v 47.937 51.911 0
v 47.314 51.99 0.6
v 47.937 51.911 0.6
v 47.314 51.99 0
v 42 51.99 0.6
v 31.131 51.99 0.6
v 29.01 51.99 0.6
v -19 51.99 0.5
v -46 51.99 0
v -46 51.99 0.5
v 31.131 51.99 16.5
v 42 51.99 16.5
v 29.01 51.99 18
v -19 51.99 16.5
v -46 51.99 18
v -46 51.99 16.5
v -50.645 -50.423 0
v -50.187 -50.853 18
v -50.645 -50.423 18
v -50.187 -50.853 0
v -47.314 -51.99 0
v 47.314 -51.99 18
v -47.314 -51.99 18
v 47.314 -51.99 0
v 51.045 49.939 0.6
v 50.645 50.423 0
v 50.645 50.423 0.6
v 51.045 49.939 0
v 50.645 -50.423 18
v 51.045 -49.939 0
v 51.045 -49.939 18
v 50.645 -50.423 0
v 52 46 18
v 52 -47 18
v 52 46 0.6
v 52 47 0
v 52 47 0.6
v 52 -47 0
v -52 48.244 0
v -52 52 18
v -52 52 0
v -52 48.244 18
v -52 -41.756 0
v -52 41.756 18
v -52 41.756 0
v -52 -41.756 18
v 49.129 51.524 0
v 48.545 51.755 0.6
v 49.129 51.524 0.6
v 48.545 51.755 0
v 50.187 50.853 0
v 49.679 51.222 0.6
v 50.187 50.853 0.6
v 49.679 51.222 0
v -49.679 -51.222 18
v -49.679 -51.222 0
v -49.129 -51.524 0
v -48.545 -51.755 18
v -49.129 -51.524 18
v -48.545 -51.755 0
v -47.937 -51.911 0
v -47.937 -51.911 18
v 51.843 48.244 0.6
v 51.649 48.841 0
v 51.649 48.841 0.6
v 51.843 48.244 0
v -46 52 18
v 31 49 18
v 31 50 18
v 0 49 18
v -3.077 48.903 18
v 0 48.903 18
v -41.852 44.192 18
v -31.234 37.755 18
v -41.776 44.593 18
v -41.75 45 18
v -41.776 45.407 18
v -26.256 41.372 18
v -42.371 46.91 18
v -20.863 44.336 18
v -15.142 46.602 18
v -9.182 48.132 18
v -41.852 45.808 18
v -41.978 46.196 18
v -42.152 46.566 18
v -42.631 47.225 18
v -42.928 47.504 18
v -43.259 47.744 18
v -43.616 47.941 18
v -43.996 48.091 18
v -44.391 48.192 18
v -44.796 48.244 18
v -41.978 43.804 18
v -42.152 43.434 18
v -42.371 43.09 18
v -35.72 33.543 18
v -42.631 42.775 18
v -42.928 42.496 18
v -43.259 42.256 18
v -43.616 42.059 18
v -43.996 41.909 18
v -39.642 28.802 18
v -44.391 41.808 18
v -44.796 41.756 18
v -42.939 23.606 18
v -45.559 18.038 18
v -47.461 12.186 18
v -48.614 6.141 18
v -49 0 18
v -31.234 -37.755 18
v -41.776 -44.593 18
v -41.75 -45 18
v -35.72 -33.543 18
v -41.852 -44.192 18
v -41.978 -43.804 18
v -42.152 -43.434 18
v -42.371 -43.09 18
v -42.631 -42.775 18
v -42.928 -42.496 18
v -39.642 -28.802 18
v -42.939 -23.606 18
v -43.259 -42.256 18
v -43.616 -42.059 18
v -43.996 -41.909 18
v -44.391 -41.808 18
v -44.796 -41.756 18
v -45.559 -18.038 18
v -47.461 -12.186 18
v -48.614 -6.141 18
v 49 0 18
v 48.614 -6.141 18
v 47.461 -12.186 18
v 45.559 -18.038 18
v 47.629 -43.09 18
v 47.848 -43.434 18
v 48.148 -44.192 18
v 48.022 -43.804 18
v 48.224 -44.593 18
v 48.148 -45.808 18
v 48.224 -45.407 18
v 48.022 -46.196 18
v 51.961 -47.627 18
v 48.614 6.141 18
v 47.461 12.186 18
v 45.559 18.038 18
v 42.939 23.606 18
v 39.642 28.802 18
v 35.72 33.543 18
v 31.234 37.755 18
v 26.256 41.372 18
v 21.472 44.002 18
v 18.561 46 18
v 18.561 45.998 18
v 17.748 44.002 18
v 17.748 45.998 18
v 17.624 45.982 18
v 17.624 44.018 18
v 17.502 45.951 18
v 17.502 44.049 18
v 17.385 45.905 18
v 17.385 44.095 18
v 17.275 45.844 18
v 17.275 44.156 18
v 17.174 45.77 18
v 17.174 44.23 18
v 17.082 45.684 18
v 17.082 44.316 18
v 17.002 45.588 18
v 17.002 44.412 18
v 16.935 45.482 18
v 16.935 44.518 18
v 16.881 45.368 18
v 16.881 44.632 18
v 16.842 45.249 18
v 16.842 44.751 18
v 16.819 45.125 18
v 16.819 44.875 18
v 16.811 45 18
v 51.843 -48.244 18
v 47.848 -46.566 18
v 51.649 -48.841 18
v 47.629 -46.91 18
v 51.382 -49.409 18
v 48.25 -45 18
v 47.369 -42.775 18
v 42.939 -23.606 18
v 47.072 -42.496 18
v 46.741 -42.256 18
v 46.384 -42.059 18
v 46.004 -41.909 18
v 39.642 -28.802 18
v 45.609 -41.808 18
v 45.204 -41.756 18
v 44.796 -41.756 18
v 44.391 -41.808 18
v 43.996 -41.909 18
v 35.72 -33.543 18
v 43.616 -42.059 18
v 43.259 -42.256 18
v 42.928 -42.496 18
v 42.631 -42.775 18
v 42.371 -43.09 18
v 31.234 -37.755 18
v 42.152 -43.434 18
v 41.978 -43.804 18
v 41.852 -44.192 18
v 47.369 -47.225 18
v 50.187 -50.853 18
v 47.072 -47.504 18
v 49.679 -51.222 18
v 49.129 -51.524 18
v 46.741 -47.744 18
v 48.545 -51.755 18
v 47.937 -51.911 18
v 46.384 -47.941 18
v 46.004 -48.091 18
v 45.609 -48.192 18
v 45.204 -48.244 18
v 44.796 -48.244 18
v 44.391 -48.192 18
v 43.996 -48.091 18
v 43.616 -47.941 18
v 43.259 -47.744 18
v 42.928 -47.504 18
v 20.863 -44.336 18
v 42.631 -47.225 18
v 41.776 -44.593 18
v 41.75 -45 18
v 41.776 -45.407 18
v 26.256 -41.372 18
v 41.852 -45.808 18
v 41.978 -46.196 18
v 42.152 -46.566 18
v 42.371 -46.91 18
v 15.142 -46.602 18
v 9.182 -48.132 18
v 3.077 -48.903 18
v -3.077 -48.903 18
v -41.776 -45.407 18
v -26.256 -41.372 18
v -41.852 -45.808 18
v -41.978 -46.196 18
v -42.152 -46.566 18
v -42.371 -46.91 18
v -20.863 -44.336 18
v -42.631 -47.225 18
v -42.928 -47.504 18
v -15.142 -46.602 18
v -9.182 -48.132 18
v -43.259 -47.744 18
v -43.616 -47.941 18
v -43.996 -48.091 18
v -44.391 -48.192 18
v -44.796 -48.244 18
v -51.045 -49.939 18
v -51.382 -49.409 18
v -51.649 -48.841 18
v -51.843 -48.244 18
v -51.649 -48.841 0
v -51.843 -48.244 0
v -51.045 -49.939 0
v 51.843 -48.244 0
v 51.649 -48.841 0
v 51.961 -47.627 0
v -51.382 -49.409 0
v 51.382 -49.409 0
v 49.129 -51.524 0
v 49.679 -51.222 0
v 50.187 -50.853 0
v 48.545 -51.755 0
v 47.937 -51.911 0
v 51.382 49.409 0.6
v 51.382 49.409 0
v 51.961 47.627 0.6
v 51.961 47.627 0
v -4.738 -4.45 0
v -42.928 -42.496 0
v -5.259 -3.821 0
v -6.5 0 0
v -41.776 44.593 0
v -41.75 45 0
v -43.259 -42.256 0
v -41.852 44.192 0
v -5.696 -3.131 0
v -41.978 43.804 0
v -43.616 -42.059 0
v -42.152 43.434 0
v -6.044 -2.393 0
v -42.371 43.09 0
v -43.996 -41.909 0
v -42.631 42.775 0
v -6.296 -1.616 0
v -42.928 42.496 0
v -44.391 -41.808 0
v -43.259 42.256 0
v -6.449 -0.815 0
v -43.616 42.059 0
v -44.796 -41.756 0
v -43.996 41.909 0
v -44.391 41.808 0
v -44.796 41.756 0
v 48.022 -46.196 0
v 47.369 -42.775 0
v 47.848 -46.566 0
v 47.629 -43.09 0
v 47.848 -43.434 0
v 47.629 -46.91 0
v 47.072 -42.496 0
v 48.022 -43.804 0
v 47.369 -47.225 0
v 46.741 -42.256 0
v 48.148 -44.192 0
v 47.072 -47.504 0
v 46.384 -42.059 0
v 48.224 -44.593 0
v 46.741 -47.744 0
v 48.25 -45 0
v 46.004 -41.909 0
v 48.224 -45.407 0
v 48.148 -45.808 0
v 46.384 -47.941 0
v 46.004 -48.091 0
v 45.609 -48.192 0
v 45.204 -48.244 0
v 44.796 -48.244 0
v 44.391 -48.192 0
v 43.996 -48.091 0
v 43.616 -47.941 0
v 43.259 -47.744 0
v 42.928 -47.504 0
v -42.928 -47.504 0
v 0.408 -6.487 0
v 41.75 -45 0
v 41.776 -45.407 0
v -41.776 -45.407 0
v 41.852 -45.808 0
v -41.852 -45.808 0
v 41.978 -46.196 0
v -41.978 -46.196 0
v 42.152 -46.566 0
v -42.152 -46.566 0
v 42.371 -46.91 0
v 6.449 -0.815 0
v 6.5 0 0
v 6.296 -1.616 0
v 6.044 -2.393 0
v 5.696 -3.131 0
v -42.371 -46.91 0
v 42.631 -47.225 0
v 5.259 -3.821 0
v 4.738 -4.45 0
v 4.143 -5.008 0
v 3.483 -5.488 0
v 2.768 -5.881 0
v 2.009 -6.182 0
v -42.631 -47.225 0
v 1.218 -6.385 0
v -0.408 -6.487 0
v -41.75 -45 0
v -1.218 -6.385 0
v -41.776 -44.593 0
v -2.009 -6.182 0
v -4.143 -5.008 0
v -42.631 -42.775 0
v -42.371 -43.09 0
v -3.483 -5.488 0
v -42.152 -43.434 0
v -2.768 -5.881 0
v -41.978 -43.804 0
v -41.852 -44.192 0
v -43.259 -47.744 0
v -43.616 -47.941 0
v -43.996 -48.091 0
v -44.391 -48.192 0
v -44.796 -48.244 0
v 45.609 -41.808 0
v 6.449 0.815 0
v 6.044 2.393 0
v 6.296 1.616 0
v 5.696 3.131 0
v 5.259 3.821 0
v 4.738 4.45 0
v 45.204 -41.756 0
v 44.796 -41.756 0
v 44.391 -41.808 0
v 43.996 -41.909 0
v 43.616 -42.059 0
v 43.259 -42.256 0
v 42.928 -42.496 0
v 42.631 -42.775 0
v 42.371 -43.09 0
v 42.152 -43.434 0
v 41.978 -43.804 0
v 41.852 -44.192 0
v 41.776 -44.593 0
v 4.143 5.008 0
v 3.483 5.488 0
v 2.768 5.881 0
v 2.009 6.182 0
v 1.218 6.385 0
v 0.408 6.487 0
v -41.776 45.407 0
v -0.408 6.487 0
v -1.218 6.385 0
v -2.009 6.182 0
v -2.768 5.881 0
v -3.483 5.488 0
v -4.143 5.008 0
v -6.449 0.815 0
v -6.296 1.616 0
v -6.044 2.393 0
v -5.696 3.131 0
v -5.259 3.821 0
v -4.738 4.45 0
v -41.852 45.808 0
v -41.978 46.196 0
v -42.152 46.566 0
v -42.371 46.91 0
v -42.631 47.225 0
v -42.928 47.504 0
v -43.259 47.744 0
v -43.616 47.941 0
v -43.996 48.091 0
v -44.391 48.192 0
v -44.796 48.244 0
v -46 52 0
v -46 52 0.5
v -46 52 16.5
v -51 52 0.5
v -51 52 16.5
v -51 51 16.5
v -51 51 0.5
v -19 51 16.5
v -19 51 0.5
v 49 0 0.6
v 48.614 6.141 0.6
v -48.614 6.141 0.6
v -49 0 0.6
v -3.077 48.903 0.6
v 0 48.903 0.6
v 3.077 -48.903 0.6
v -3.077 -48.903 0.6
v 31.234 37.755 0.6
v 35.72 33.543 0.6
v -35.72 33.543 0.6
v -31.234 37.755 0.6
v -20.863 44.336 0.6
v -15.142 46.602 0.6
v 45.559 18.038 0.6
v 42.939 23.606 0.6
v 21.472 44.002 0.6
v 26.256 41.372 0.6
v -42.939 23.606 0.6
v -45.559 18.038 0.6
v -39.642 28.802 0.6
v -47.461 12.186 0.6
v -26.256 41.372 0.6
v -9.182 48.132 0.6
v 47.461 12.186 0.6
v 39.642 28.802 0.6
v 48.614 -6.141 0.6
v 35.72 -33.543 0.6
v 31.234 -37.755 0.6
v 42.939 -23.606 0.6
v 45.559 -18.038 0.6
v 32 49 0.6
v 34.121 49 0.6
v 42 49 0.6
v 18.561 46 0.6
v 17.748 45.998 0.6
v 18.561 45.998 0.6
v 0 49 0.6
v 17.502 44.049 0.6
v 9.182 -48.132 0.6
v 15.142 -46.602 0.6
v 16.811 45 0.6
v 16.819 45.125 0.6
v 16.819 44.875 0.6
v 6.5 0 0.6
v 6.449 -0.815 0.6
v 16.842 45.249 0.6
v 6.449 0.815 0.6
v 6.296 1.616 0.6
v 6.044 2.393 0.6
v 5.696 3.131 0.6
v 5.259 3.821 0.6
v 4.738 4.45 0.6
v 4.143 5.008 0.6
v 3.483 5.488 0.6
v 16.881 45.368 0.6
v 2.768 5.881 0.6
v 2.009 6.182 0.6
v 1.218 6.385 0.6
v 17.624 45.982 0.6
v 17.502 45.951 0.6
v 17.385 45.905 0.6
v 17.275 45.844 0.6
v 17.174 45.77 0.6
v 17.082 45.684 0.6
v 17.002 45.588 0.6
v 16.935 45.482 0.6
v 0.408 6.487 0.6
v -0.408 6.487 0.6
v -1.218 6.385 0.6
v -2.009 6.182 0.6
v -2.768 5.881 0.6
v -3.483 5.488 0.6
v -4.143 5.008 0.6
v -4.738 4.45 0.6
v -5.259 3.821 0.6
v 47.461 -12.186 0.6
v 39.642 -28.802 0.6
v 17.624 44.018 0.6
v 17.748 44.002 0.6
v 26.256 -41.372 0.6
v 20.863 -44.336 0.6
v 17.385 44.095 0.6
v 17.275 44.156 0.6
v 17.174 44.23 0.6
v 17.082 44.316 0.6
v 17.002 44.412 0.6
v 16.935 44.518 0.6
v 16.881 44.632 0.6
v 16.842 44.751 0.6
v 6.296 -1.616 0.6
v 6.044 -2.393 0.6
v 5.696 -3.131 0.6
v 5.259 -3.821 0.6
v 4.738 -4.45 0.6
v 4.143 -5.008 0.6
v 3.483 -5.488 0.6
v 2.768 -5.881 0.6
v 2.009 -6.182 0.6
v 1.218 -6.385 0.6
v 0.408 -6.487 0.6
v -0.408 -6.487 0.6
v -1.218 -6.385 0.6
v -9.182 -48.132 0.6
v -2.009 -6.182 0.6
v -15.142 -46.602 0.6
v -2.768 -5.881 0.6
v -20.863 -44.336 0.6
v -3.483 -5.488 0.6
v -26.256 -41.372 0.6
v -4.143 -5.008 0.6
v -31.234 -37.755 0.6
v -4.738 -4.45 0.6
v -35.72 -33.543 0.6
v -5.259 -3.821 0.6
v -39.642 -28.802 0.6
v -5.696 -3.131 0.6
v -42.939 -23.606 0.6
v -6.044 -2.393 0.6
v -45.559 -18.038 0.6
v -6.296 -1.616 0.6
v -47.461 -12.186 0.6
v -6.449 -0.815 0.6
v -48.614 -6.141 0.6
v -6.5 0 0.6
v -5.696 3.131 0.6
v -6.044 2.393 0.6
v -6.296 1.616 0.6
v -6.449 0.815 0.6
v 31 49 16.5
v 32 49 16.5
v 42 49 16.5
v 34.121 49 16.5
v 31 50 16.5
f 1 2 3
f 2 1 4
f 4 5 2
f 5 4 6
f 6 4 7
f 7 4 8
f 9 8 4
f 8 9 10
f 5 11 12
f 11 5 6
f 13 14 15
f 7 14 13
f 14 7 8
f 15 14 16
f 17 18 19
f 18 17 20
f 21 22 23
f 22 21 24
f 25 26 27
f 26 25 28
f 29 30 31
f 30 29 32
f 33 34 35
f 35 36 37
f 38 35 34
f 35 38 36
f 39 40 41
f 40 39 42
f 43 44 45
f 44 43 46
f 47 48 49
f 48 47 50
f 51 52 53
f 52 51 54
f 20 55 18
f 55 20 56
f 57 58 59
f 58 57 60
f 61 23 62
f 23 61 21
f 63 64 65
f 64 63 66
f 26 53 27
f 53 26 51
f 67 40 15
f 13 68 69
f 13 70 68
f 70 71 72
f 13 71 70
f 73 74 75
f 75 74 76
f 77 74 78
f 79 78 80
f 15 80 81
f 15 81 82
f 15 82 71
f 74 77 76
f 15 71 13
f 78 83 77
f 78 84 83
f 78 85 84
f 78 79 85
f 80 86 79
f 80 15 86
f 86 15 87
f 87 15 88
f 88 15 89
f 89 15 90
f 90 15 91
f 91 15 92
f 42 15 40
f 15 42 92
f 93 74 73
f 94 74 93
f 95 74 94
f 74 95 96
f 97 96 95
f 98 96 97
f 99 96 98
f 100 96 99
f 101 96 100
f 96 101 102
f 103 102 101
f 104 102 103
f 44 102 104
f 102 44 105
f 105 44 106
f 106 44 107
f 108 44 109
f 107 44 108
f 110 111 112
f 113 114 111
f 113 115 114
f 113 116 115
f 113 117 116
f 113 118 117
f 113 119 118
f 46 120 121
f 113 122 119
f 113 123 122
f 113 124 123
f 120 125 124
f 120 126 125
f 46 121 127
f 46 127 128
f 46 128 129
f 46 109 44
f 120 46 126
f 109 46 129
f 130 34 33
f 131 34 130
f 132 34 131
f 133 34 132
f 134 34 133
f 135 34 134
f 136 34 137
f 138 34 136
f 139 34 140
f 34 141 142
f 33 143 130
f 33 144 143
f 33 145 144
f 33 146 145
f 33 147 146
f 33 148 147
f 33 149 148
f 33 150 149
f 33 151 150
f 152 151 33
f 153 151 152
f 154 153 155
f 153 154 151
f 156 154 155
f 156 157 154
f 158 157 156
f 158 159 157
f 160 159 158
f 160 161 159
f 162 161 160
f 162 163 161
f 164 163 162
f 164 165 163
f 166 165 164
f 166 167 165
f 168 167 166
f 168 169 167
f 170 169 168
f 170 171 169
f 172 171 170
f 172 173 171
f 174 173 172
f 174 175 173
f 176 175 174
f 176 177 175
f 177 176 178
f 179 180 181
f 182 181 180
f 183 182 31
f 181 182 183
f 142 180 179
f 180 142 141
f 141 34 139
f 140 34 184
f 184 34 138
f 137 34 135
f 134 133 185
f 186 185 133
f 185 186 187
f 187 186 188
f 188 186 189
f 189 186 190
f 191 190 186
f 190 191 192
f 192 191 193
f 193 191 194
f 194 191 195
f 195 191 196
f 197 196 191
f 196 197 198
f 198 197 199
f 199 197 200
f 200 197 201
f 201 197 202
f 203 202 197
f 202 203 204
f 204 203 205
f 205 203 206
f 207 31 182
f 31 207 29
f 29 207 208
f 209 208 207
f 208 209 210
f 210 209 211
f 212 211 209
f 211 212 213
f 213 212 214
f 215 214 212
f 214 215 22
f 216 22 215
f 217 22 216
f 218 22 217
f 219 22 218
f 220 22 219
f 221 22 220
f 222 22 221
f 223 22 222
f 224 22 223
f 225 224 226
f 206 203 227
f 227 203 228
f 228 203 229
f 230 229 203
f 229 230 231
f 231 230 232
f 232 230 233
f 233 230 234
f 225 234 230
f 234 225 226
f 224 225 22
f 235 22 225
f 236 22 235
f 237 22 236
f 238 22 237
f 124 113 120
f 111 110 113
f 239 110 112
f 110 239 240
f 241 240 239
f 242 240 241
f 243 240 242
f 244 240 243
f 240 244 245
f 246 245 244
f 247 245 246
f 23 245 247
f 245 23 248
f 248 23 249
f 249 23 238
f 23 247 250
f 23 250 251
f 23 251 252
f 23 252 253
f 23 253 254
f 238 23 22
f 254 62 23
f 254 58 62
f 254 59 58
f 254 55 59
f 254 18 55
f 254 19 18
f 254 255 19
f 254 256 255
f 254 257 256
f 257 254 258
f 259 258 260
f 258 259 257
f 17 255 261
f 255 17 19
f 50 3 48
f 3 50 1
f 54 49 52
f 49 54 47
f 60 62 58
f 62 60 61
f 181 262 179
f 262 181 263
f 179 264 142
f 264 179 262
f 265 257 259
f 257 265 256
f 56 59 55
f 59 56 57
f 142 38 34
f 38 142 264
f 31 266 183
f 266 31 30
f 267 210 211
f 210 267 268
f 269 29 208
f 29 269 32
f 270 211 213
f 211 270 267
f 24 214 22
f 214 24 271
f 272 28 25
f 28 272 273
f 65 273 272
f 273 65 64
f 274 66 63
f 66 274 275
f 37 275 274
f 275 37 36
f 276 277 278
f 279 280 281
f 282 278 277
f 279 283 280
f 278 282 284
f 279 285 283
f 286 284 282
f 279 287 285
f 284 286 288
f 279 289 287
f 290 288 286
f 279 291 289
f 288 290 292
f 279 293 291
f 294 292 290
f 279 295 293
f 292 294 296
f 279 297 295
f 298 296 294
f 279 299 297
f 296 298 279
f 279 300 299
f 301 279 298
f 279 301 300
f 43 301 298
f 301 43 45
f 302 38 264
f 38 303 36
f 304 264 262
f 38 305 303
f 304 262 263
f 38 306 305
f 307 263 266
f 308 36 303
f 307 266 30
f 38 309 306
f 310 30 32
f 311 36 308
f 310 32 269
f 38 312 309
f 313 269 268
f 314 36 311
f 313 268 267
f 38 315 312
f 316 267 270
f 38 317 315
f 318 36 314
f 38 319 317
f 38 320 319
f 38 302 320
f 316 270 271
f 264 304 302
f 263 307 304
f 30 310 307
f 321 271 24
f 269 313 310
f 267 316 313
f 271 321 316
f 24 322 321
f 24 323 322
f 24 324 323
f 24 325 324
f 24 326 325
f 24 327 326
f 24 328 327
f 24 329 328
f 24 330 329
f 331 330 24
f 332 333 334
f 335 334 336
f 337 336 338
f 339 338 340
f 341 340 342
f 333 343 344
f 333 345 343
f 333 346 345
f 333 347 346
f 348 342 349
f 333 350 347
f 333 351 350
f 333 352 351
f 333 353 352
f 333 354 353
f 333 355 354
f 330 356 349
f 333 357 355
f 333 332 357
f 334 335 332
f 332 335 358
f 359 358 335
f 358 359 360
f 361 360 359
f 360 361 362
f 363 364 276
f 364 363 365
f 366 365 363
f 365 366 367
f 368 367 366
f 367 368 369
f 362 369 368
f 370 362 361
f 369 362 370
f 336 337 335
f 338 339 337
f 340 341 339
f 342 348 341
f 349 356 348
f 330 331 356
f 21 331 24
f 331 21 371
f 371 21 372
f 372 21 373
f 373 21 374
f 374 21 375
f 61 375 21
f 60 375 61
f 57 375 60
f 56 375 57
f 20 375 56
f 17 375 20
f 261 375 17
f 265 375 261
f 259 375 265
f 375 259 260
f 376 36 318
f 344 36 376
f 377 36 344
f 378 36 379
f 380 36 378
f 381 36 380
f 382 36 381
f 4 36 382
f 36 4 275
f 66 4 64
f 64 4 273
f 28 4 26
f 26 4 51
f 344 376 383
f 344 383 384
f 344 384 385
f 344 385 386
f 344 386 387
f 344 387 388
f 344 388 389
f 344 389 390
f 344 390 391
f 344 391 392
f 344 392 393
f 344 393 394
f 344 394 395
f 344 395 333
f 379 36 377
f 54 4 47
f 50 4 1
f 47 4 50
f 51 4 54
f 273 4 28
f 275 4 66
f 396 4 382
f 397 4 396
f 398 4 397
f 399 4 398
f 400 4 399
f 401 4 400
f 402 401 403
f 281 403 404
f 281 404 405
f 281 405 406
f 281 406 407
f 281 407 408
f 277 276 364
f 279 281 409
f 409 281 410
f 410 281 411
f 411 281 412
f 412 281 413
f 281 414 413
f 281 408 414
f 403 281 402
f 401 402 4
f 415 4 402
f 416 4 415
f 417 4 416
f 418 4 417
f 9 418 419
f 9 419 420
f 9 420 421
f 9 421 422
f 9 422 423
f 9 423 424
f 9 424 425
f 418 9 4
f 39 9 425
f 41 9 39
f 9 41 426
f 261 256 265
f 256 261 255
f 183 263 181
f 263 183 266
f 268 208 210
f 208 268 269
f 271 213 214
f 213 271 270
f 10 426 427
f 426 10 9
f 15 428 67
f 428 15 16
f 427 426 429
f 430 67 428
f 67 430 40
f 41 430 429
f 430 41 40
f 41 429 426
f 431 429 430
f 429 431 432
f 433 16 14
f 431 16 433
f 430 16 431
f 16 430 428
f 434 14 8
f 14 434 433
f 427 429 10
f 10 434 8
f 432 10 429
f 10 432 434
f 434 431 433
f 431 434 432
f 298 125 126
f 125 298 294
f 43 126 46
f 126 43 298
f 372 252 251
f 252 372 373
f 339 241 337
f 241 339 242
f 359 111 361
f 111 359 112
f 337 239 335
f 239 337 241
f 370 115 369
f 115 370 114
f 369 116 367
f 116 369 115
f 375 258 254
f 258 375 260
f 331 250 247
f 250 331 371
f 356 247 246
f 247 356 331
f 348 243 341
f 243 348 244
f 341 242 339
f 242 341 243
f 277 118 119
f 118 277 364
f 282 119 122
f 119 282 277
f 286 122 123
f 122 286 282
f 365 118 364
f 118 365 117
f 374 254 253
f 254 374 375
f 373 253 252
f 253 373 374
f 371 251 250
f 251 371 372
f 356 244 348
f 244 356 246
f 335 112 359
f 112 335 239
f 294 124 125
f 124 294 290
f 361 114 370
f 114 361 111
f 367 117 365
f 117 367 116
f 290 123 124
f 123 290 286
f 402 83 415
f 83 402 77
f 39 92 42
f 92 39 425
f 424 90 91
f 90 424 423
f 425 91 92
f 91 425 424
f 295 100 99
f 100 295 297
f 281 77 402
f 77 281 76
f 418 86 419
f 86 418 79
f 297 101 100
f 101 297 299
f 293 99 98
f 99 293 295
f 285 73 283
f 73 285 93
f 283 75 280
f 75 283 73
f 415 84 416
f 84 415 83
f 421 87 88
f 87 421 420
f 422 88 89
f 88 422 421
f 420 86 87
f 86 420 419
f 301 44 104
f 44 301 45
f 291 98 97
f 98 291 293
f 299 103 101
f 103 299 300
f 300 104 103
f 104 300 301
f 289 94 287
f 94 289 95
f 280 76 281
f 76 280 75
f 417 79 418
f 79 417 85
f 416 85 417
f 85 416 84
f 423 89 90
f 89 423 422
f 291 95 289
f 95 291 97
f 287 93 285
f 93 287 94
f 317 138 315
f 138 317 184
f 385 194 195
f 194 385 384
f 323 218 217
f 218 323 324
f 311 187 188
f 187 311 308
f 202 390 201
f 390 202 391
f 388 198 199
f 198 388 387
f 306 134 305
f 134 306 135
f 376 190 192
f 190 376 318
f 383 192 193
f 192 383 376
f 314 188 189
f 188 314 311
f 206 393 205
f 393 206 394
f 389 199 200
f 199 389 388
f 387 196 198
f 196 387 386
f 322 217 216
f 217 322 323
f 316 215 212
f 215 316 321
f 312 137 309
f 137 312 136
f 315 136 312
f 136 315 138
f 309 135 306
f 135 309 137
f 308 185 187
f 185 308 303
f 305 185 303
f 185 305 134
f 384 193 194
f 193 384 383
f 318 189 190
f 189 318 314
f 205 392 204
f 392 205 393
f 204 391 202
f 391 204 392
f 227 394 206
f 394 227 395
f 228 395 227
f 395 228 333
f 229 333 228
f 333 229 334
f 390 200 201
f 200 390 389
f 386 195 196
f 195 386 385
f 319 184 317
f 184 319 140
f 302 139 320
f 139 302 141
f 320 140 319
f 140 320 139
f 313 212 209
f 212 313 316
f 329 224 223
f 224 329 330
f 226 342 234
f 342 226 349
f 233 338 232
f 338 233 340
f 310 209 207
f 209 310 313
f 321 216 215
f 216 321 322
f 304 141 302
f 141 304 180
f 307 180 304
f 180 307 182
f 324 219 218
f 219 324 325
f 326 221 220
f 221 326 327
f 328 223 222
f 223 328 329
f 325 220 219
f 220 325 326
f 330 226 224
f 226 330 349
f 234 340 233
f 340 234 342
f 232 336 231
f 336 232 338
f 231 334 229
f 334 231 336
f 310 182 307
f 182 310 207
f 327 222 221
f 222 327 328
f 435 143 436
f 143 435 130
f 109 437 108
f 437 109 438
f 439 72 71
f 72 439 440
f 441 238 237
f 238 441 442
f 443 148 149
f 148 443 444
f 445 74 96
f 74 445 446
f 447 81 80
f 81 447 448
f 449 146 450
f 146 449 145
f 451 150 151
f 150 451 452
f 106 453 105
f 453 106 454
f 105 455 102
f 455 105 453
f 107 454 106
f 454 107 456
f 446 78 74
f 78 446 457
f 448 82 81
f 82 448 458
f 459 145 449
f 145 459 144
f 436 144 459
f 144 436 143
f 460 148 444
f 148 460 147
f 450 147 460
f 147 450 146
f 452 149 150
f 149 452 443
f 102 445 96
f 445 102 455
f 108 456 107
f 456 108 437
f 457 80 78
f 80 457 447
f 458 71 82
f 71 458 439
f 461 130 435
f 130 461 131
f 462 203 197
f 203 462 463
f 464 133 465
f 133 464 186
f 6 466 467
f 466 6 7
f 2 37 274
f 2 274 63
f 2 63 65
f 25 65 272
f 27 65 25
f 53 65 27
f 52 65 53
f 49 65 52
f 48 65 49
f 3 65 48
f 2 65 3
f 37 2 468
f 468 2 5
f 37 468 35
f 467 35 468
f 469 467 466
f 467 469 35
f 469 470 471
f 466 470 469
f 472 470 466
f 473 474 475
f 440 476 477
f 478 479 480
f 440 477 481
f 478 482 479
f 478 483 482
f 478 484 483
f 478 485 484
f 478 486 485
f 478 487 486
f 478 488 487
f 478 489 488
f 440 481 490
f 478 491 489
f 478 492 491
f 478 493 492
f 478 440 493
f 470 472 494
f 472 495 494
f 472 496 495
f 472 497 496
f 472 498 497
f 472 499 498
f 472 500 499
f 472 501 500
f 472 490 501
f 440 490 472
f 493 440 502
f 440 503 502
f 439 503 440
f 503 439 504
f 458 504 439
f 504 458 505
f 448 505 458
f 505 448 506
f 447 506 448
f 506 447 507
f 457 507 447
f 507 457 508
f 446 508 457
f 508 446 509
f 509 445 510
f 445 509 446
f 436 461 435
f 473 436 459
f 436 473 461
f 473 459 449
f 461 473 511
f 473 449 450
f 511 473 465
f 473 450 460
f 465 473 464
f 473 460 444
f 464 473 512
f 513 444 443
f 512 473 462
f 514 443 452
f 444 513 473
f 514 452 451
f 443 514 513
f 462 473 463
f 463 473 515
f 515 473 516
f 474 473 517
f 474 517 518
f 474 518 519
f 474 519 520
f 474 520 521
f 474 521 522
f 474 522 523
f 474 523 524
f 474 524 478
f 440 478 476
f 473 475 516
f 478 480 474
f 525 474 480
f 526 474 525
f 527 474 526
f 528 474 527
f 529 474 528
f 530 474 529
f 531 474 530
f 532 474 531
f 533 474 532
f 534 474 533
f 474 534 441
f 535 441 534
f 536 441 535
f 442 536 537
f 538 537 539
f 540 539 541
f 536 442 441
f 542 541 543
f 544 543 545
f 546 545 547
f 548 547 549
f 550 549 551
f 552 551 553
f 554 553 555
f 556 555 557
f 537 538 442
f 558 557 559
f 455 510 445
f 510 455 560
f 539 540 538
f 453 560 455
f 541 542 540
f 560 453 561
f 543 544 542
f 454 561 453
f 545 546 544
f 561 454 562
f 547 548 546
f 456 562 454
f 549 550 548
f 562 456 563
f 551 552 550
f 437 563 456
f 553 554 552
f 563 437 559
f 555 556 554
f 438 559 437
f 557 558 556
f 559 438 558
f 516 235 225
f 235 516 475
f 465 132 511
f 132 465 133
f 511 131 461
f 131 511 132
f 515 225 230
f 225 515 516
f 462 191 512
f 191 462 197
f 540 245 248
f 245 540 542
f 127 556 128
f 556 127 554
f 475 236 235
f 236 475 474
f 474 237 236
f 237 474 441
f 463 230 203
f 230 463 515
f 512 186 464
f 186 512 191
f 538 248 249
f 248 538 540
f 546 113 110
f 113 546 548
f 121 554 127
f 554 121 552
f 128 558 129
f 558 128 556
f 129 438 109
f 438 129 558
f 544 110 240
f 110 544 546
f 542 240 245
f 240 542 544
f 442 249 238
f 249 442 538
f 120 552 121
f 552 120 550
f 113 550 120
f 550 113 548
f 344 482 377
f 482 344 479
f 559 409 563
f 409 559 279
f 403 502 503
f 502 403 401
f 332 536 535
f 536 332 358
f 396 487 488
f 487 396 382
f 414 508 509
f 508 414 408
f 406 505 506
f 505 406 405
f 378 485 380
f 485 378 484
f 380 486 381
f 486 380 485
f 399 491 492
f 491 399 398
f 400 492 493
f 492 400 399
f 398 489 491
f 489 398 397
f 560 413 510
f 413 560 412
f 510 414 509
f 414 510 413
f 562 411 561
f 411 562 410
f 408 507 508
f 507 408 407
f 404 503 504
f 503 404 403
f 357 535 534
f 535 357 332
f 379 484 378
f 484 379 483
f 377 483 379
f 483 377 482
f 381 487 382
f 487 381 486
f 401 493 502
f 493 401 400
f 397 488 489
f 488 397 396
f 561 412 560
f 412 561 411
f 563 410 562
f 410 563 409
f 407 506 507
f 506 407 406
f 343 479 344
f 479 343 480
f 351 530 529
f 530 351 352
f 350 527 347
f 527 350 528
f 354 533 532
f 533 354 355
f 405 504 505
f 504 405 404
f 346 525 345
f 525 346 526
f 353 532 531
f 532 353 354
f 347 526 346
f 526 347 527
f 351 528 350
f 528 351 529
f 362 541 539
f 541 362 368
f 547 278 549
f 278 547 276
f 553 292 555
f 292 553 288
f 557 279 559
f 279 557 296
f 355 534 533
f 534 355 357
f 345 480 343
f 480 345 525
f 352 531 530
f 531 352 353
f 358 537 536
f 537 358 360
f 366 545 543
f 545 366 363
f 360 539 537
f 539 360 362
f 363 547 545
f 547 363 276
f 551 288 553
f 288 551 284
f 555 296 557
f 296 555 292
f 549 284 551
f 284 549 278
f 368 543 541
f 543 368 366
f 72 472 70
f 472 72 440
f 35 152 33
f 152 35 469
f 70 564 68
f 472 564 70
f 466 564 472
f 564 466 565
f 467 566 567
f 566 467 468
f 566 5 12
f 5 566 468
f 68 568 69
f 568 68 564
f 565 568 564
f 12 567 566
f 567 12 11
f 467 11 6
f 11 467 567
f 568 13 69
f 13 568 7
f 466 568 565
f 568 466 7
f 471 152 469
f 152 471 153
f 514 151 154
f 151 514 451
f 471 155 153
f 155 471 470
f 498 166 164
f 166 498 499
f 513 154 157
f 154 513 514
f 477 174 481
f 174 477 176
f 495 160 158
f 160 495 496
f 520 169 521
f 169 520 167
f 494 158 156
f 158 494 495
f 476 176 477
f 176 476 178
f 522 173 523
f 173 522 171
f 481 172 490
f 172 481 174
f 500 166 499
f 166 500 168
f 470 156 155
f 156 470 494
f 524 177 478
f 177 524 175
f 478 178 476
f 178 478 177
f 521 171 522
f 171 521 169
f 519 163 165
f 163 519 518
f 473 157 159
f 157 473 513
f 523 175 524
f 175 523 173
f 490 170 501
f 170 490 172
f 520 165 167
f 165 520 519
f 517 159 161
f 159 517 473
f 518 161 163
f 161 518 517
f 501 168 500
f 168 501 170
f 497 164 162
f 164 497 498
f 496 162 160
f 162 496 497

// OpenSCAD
$fn = 50;


union() {
	difference() {
		union() {
			translate(v = [0, 0, 0]) {
				rotate(a = [0, 0, 0]) {
					hull() {
						translate(v = [-47.0000000000, 47.0000000000, 0]) {
							rotate(a = [0, 0, 0]) {
								translate(v = [0, 0, 0]) {
									rotate(a = [0, 0, 0]) {
										cylinder(h = 18, r = 5);
									}
								}
							}
						}
						translate(v = [47.0000000000, 47.0000000000, 0]) {
							rotate(a = [0, 0, 0]) {
								translate(v = [0, 0, 0]) {
									rotate(a = [0, 0, 0]) {
										cylinder(h = 18, r = 5);
									}
								}
							}
						}
						translate(v = [-47.0000000000, -47.0000000000, 0]) {
							rotate(a = [0, 0, 0]) {
								translate(v = [0, 0, 0]) {
									rotate(a = [0, 0, 0]) {
										cylinder(h = 18, r = 5);
									}
								}
							}
						}
						translate(v = [47.0000000000, -47.0000000000, 0]) {
							rotate(a = [0, 0, 0]) {
								translate(v = [0, 0, 0]) {
									rotate(a = [0, 0, 0]) {
										cylinder(h = 18, r = 5);
									}
								}
							}
						}
					}
				}
			}
			translate(v = [-52.0000000000, 46.0000000000, 0]) {
				rotate(a = [0, 0, 0]) {
					cube(size = [6, 6, 18]);
				}
			}
		}
		union() {
			#translate(v = [-51.0000000000, 51.0000000000, 0.5000000000]) {
				rotate(a = [0, 0, 0]) {
					cube(size = [32, 1, 16]);
				}
			}
			translate(v = [-52.5000000000, -45.0000000000, -125]) {
				rotate(a = [0, 0, 0]) {
					hull() {
						translate(v = [7.5000000000, 0, 0]) {
							rotate(a = [0, 0, 0]) {
								translate(v = [0, 0, 0]) {
									rotate(a = [0, 0, 0]) {
										cylinder(h = 250, r = 3.2500000000);
									}
								}
							}
						}
						translate(v = [-7.5000000000, 0, 0]) {
							rotate(a = [0, 0, 0]) {
								translate(v = [0, 0, 0]) {
									rotate(a = [0, 0, 0]) {
										cylinder(h = 250, r = 3.2500000000);
									}
								}
							}
						}
					}
				}
			}
			translate(v = [-52.5000000000, 45.0000000000, -125]) {
				rotate(a = [0, 0, 0]) {
					hull() {
						translate(v = [7.5000000000, 0, 0]) {
							rotate(a = [0, 0, 0]) {
								translate(v = [0, 0, 0]) {
									rotate(a = [0, 0, 0]) {
										cylinder(h = 250, r = 3.2500000000);
									}
								}
							}
						}
						translate(v = [-7.5000000000, 0, 0]) {
							rotate(a = [0, 0, 0]) {
								translate(v = [0, 0, 0]) {
									rotate(a = [0, 0, 0]) {
										cylinder(h = 250, r = 3.2500000000);
									}
								}
							}
						}
					}
				}
			}
			translate(v = [45.0000000000, -45.0000000000, -125.0000000000]) {
				rotate(a = [0, 0, 0]) {
					cylinder(h = 250, r = 3.2500000000);
				}
			}
			translate(v = [0, 0, 0.6000000000]) {
				rotate(a = [0, 0, 0]) {
					cylinder(h = 20.4000000000, r = 49.0000000000);
				}
			}
			translate(v = [0, 0, -9.0000000000]) {
				rotate(a = [0, 0, 0]) {
					cylinder(h = 18, r = 6.5000000000);
				}
			}
			translate(v = [0.0000000000, 46.0000000000, 0.6000000000]) {
				rotate(a = [0, 0, 0]) {
					cube(size = [52.0000000000, 3, 20.4000000000]);
				}
			}
			translate(v = [42.0000000000, 46.0000000000, 0.6000000000]) {
				rotate(a = [0, 0, 0]) {
					cube(size = [10, 6, 20.4000000000]);
				}
			}
			translate(v = [31.0000000000, 46.0000000000, 16.5000000000]) {
				rotate(a = [0, 0, 0]) {
					cube(size = [21, 6, 1.5000000000]);
				}
			}
			translate(v = [28.2500000000, 52.7500000000, 0.6000000000]) {
				rotate(a = [0, 0, -45]) {
					cube(size = [7.5000000000, 1.5000000000, 20.4000000000]);
				}
			}
			translate(v = [11.0610000000, 44.0000000000, 0.6000000000]) {
				rotate(a = [0, 0, 0]) {
					cube(size = [7.5000000000, 2, 17.4000000000]);
				}
			}
		}
	}
	union() {
		translate(v = [20.3110000000, 45.0000000000, 0]) {
			rotate(a = [0, 0, 0]) {
				hull() {
					translate(v = [2.5000000000, 0, 0]) {
						rotate(a = [0, 0, 0]) {
							#translate(v = [0, 0, 0]) {
								rotate(a = [0, 0, 0]) {
									cylinder(h = 18, r = 1.0000000000);
								}
							}
						}
					}
					translate(v = [-2.5000000000, 0, 0]) {
						rotate(a = [0, 0, 0]) {
							#translate(v = [0, 0, 0]) {
								rotate(a = [0, 0, 0]) {
									cylinder(h = 18, r = 1.0000000000);
								}
							}
						}
					}
				}
			}
		}
	}
}
